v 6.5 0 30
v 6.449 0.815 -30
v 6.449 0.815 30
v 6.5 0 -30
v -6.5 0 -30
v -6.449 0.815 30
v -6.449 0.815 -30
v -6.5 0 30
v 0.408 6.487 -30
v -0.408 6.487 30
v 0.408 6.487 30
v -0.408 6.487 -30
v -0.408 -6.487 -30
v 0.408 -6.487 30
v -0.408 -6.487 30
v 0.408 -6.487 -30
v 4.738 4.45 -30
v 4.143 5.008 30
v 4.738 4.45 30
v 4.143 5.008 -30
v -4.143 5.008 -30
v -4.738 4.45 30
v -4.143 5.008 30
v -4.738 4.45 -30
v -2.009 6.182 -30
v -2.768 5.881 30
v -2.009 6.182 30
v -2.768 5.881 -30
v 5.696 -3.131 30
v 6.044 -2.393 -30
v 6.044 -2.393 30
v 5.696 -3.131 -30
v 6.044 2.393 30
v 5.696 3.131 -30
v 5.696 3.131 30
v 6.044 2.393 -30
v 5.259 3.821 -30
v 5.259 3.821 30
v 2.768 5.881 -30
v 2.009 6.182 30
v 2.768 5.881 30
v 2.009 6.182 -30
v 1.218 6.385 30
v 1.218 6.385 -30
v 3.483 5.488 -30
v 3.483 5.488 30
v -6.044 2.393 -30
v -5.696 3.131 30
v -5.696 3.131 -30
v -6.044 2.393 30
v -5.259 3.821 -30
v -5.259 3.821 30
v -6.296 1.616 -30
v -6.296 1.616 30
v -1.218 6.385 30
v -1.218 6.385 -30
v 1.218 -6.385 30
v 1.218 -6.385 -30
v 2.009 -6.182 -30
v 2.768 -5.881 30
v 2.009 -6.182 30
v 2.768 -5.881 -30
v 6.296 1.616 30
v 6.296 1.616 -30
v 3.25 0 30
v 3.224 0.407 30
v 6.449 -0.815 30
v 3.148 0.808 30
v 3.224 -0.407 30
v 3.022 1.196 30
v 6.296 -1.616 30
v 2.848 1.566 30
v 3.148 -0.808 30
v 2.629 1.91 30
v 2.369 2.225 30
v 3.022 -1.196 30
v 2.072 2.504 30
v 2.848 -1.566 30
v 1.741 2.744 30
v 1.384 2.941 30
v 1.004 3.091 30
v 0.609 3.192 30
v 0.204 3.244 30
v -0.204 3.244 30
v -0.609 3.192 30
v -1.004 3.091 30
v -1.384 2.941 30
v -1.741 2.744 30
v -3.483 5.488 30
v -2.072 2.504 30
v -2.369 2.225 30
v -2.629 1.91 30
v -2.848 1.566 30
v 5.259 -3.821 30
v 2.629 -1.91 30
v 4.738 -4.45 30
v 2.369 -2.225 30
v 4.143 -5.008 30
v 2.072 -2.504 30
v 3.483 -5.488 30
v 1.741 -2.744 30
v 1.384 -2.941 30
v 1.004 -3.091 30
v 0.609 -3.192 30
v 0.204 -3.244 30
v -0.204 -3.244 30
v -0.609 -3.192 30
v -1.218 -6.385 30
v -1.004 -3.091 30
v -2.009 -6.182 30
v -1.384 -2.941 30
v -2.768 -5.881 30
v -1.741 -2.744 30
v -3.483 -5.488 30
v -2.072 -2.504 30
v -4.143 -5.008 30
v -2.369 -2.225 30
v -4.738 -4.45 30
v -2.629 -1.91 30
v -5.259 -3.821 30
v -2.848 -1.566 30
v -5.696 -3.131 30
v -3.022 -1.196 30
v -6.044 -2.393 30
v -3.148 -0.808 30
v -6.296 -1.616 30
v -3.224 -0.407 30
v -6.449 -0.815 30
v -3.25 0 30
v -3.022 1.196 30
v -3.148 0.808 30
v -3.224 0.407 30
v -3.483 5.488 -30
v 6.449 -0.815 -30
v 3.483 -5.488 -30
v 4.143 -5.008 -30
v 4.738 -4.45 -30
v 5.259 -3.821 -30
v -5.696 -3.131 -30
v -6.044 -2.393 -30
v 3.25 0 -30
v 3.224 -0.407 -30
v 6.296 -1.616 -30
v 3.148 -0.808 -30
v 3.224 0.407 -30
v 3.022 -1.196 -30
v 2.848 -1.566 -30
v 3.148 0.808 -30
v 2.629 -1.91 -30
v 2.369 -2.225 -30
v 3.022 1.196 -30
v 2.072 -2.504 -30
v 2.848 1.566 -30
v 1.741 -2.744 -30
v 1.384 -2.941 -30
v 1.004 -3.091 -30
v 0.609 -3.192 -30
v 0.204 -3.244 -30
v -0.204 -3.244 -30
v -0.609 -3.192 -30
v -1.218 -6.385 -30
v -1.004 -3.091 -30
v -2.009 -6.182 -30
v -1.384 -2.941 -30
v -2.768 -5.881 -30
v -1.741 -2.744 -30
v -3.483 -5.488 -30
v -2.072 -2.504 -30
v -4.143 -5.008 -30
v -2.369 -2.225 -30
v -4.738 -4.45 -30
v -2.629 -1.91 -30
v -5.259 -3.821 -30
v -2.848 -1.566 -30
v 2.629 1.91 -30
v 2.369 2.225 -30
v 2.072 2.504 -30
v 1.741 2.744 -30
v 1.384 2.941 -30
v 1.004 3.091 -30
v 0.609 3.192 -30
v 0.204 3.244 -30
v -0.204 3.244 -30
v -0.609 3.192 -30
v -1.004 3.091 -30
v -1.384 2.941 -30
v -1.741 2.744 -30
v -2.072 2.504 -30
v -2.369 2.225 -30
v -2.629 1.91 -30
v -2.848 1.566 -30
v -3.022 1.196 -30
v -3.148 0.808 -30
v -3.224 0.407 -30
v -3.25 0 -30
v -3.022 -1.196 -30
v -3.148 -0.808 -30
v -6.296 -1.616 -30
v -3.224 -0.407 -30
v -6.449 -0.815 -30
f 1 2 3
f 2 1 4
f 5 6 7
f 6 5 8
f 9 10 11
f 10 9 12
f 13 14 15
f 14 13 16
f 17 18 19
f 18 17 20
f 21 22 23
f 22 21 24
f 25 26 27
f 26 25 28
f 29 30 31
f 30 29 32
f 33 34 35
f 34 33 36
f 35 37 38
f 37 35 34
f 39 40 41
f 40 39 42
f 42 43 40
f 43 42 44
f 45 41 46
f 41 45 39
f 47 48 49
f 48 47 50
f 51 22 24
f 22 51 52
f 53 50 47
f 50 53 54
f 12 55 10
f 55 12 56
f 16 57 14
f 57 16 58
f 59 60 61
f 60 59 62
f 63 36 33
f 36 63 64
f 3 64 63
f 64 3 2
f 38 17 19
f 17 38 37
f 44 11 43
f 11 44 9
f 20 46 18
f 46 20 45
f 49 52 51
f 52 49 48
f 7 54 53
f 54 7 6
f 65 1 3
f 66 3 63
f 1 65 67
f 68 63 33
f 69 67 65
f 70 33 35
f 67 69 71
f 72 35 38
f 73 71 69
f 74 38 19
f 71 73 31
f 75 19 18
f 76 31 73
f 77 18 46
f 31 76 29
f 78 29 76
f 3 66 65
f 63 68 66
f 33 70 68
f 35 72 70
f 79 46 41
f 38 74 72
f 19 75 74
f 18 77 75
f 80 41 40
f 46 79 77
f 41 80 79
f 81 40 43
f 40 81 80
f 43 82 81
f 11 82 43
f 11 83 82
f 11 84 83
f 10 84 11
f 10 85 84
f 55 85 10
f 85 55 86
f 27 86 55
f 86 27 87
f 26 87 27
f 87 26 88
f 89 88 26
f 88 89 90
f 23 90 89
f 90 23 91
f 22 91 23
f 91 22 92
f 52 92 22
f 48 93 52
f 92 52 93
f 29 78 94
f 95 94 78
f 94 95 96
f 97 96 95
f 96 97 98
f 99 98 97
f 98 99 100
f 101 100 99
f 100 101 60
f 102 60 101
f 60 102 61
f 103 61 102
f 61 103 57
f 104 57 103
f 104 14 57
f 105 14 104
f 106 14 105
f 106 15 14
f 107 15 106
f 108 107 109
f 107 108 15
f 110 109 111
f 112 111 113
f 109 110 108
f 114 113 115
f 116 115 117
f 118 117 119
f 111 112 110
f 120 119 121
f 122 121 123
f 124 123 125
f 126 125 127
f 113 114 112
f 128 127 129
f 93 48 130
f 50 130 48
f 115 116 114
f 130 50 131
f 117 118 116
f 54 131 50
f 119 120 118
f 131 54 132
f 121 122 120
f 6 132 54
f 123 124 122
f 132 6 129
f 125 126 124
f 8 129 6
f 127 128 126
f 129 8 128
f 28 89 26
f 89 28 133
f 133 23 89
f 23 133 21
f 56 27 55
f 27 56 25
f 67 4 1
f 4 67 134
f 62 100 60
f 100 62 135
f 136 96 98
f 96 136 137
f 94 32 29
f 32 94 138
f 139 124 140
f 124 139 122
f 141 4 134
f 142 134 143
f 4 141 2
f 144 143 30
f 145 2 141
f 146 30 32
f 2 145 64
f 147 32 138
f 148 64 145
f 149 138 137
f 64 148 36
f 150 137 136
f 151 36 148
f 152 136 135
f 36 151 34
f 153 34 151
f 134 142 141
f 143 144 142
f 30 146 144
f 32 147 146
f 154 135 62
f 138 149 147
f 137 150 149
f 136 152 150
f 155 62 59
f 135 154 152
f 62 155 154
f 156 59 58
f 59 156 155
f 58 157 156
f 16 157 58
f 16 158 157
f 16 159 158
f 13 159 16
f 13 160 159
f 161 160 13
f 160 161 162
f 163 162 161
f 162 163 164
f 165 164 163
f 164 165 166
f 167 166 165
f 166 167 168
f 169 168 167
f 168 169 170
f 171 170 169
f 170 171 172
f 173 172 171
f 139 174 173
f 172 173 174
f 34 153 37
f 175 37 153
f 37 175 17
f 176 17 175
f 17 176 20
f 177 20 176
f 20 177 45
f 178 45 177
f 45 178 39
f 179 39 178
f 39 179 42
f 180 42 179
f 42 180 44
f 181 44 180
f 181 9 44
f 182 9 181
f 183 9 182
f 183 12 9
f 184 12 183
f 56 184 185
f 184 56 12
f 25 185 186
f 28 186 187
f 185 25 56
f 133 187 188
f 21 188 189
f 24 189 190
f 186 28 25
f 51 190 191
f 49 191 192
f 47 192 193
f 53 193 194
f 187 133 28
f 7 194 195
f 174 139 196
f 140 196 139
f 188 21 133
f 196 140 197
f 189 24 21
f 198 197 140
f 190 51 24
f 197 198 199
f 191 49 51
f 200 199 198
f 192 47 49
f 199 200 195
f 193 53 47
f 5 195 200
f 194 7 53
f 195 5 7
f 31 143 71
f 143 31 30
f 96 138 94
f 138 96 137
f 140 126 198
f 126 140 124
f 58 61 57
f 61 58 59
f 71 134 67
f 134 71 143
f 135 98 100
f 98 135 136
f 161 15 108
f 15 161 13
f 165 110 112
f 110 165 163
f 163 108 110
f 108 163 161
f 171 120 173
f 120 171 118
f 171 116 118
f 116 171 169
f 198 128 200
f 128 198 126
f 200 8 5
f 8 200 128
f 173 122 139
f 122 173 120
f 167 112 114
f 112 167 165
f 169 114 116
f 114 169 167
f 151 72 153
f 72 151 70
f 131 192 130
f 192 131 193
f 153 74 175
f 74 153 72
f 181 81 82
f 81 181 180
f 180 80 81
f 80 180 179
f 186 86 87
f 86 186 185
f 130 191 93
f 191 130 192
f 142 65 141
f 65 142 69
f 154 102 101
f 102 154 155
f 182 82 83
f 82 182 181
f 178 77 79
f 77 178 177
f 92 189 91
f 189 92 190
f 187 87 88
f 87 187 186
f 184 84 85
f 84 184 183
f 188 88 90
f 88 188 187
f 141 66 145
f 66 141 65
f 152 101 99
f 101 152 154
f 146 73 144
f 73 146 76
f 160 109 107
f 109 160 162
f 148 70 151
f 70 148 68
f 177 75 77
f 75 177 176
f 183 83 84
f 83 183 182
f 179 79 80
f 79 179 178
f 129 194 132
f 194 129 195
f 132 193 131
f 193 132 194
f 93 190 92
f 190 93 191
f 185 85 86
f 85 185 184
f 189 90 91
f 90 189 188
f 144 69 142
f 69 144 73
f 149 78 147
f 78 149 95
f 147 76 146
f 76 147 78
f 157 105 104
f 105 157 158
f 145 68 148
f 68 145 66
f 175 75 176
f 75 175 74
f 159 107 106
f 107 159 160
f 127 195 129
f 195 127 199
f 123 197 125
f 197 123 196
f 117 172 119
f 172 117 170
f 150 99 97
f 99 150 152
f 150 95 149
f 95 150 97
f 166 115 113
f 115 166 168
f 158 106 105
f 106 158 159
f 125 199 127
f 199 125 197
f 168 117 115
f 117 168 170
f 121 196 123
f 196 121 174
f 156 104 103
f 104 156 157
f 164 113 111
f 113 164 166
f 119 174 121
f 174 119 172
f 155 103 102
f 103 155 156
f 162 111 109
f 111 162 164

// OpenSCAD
$fn = 50;


difference() {
	union() {
		translate(v = [0, 0, -30.0000000000]) {
			cylinder(h = 60, r = 6.5000000000);
		}
	}
	union() {
		translate(v = [0, 0, -100.0000000000]) {
			cylinder(h = 200, r = 3.2500000000);
		}
	}
}
